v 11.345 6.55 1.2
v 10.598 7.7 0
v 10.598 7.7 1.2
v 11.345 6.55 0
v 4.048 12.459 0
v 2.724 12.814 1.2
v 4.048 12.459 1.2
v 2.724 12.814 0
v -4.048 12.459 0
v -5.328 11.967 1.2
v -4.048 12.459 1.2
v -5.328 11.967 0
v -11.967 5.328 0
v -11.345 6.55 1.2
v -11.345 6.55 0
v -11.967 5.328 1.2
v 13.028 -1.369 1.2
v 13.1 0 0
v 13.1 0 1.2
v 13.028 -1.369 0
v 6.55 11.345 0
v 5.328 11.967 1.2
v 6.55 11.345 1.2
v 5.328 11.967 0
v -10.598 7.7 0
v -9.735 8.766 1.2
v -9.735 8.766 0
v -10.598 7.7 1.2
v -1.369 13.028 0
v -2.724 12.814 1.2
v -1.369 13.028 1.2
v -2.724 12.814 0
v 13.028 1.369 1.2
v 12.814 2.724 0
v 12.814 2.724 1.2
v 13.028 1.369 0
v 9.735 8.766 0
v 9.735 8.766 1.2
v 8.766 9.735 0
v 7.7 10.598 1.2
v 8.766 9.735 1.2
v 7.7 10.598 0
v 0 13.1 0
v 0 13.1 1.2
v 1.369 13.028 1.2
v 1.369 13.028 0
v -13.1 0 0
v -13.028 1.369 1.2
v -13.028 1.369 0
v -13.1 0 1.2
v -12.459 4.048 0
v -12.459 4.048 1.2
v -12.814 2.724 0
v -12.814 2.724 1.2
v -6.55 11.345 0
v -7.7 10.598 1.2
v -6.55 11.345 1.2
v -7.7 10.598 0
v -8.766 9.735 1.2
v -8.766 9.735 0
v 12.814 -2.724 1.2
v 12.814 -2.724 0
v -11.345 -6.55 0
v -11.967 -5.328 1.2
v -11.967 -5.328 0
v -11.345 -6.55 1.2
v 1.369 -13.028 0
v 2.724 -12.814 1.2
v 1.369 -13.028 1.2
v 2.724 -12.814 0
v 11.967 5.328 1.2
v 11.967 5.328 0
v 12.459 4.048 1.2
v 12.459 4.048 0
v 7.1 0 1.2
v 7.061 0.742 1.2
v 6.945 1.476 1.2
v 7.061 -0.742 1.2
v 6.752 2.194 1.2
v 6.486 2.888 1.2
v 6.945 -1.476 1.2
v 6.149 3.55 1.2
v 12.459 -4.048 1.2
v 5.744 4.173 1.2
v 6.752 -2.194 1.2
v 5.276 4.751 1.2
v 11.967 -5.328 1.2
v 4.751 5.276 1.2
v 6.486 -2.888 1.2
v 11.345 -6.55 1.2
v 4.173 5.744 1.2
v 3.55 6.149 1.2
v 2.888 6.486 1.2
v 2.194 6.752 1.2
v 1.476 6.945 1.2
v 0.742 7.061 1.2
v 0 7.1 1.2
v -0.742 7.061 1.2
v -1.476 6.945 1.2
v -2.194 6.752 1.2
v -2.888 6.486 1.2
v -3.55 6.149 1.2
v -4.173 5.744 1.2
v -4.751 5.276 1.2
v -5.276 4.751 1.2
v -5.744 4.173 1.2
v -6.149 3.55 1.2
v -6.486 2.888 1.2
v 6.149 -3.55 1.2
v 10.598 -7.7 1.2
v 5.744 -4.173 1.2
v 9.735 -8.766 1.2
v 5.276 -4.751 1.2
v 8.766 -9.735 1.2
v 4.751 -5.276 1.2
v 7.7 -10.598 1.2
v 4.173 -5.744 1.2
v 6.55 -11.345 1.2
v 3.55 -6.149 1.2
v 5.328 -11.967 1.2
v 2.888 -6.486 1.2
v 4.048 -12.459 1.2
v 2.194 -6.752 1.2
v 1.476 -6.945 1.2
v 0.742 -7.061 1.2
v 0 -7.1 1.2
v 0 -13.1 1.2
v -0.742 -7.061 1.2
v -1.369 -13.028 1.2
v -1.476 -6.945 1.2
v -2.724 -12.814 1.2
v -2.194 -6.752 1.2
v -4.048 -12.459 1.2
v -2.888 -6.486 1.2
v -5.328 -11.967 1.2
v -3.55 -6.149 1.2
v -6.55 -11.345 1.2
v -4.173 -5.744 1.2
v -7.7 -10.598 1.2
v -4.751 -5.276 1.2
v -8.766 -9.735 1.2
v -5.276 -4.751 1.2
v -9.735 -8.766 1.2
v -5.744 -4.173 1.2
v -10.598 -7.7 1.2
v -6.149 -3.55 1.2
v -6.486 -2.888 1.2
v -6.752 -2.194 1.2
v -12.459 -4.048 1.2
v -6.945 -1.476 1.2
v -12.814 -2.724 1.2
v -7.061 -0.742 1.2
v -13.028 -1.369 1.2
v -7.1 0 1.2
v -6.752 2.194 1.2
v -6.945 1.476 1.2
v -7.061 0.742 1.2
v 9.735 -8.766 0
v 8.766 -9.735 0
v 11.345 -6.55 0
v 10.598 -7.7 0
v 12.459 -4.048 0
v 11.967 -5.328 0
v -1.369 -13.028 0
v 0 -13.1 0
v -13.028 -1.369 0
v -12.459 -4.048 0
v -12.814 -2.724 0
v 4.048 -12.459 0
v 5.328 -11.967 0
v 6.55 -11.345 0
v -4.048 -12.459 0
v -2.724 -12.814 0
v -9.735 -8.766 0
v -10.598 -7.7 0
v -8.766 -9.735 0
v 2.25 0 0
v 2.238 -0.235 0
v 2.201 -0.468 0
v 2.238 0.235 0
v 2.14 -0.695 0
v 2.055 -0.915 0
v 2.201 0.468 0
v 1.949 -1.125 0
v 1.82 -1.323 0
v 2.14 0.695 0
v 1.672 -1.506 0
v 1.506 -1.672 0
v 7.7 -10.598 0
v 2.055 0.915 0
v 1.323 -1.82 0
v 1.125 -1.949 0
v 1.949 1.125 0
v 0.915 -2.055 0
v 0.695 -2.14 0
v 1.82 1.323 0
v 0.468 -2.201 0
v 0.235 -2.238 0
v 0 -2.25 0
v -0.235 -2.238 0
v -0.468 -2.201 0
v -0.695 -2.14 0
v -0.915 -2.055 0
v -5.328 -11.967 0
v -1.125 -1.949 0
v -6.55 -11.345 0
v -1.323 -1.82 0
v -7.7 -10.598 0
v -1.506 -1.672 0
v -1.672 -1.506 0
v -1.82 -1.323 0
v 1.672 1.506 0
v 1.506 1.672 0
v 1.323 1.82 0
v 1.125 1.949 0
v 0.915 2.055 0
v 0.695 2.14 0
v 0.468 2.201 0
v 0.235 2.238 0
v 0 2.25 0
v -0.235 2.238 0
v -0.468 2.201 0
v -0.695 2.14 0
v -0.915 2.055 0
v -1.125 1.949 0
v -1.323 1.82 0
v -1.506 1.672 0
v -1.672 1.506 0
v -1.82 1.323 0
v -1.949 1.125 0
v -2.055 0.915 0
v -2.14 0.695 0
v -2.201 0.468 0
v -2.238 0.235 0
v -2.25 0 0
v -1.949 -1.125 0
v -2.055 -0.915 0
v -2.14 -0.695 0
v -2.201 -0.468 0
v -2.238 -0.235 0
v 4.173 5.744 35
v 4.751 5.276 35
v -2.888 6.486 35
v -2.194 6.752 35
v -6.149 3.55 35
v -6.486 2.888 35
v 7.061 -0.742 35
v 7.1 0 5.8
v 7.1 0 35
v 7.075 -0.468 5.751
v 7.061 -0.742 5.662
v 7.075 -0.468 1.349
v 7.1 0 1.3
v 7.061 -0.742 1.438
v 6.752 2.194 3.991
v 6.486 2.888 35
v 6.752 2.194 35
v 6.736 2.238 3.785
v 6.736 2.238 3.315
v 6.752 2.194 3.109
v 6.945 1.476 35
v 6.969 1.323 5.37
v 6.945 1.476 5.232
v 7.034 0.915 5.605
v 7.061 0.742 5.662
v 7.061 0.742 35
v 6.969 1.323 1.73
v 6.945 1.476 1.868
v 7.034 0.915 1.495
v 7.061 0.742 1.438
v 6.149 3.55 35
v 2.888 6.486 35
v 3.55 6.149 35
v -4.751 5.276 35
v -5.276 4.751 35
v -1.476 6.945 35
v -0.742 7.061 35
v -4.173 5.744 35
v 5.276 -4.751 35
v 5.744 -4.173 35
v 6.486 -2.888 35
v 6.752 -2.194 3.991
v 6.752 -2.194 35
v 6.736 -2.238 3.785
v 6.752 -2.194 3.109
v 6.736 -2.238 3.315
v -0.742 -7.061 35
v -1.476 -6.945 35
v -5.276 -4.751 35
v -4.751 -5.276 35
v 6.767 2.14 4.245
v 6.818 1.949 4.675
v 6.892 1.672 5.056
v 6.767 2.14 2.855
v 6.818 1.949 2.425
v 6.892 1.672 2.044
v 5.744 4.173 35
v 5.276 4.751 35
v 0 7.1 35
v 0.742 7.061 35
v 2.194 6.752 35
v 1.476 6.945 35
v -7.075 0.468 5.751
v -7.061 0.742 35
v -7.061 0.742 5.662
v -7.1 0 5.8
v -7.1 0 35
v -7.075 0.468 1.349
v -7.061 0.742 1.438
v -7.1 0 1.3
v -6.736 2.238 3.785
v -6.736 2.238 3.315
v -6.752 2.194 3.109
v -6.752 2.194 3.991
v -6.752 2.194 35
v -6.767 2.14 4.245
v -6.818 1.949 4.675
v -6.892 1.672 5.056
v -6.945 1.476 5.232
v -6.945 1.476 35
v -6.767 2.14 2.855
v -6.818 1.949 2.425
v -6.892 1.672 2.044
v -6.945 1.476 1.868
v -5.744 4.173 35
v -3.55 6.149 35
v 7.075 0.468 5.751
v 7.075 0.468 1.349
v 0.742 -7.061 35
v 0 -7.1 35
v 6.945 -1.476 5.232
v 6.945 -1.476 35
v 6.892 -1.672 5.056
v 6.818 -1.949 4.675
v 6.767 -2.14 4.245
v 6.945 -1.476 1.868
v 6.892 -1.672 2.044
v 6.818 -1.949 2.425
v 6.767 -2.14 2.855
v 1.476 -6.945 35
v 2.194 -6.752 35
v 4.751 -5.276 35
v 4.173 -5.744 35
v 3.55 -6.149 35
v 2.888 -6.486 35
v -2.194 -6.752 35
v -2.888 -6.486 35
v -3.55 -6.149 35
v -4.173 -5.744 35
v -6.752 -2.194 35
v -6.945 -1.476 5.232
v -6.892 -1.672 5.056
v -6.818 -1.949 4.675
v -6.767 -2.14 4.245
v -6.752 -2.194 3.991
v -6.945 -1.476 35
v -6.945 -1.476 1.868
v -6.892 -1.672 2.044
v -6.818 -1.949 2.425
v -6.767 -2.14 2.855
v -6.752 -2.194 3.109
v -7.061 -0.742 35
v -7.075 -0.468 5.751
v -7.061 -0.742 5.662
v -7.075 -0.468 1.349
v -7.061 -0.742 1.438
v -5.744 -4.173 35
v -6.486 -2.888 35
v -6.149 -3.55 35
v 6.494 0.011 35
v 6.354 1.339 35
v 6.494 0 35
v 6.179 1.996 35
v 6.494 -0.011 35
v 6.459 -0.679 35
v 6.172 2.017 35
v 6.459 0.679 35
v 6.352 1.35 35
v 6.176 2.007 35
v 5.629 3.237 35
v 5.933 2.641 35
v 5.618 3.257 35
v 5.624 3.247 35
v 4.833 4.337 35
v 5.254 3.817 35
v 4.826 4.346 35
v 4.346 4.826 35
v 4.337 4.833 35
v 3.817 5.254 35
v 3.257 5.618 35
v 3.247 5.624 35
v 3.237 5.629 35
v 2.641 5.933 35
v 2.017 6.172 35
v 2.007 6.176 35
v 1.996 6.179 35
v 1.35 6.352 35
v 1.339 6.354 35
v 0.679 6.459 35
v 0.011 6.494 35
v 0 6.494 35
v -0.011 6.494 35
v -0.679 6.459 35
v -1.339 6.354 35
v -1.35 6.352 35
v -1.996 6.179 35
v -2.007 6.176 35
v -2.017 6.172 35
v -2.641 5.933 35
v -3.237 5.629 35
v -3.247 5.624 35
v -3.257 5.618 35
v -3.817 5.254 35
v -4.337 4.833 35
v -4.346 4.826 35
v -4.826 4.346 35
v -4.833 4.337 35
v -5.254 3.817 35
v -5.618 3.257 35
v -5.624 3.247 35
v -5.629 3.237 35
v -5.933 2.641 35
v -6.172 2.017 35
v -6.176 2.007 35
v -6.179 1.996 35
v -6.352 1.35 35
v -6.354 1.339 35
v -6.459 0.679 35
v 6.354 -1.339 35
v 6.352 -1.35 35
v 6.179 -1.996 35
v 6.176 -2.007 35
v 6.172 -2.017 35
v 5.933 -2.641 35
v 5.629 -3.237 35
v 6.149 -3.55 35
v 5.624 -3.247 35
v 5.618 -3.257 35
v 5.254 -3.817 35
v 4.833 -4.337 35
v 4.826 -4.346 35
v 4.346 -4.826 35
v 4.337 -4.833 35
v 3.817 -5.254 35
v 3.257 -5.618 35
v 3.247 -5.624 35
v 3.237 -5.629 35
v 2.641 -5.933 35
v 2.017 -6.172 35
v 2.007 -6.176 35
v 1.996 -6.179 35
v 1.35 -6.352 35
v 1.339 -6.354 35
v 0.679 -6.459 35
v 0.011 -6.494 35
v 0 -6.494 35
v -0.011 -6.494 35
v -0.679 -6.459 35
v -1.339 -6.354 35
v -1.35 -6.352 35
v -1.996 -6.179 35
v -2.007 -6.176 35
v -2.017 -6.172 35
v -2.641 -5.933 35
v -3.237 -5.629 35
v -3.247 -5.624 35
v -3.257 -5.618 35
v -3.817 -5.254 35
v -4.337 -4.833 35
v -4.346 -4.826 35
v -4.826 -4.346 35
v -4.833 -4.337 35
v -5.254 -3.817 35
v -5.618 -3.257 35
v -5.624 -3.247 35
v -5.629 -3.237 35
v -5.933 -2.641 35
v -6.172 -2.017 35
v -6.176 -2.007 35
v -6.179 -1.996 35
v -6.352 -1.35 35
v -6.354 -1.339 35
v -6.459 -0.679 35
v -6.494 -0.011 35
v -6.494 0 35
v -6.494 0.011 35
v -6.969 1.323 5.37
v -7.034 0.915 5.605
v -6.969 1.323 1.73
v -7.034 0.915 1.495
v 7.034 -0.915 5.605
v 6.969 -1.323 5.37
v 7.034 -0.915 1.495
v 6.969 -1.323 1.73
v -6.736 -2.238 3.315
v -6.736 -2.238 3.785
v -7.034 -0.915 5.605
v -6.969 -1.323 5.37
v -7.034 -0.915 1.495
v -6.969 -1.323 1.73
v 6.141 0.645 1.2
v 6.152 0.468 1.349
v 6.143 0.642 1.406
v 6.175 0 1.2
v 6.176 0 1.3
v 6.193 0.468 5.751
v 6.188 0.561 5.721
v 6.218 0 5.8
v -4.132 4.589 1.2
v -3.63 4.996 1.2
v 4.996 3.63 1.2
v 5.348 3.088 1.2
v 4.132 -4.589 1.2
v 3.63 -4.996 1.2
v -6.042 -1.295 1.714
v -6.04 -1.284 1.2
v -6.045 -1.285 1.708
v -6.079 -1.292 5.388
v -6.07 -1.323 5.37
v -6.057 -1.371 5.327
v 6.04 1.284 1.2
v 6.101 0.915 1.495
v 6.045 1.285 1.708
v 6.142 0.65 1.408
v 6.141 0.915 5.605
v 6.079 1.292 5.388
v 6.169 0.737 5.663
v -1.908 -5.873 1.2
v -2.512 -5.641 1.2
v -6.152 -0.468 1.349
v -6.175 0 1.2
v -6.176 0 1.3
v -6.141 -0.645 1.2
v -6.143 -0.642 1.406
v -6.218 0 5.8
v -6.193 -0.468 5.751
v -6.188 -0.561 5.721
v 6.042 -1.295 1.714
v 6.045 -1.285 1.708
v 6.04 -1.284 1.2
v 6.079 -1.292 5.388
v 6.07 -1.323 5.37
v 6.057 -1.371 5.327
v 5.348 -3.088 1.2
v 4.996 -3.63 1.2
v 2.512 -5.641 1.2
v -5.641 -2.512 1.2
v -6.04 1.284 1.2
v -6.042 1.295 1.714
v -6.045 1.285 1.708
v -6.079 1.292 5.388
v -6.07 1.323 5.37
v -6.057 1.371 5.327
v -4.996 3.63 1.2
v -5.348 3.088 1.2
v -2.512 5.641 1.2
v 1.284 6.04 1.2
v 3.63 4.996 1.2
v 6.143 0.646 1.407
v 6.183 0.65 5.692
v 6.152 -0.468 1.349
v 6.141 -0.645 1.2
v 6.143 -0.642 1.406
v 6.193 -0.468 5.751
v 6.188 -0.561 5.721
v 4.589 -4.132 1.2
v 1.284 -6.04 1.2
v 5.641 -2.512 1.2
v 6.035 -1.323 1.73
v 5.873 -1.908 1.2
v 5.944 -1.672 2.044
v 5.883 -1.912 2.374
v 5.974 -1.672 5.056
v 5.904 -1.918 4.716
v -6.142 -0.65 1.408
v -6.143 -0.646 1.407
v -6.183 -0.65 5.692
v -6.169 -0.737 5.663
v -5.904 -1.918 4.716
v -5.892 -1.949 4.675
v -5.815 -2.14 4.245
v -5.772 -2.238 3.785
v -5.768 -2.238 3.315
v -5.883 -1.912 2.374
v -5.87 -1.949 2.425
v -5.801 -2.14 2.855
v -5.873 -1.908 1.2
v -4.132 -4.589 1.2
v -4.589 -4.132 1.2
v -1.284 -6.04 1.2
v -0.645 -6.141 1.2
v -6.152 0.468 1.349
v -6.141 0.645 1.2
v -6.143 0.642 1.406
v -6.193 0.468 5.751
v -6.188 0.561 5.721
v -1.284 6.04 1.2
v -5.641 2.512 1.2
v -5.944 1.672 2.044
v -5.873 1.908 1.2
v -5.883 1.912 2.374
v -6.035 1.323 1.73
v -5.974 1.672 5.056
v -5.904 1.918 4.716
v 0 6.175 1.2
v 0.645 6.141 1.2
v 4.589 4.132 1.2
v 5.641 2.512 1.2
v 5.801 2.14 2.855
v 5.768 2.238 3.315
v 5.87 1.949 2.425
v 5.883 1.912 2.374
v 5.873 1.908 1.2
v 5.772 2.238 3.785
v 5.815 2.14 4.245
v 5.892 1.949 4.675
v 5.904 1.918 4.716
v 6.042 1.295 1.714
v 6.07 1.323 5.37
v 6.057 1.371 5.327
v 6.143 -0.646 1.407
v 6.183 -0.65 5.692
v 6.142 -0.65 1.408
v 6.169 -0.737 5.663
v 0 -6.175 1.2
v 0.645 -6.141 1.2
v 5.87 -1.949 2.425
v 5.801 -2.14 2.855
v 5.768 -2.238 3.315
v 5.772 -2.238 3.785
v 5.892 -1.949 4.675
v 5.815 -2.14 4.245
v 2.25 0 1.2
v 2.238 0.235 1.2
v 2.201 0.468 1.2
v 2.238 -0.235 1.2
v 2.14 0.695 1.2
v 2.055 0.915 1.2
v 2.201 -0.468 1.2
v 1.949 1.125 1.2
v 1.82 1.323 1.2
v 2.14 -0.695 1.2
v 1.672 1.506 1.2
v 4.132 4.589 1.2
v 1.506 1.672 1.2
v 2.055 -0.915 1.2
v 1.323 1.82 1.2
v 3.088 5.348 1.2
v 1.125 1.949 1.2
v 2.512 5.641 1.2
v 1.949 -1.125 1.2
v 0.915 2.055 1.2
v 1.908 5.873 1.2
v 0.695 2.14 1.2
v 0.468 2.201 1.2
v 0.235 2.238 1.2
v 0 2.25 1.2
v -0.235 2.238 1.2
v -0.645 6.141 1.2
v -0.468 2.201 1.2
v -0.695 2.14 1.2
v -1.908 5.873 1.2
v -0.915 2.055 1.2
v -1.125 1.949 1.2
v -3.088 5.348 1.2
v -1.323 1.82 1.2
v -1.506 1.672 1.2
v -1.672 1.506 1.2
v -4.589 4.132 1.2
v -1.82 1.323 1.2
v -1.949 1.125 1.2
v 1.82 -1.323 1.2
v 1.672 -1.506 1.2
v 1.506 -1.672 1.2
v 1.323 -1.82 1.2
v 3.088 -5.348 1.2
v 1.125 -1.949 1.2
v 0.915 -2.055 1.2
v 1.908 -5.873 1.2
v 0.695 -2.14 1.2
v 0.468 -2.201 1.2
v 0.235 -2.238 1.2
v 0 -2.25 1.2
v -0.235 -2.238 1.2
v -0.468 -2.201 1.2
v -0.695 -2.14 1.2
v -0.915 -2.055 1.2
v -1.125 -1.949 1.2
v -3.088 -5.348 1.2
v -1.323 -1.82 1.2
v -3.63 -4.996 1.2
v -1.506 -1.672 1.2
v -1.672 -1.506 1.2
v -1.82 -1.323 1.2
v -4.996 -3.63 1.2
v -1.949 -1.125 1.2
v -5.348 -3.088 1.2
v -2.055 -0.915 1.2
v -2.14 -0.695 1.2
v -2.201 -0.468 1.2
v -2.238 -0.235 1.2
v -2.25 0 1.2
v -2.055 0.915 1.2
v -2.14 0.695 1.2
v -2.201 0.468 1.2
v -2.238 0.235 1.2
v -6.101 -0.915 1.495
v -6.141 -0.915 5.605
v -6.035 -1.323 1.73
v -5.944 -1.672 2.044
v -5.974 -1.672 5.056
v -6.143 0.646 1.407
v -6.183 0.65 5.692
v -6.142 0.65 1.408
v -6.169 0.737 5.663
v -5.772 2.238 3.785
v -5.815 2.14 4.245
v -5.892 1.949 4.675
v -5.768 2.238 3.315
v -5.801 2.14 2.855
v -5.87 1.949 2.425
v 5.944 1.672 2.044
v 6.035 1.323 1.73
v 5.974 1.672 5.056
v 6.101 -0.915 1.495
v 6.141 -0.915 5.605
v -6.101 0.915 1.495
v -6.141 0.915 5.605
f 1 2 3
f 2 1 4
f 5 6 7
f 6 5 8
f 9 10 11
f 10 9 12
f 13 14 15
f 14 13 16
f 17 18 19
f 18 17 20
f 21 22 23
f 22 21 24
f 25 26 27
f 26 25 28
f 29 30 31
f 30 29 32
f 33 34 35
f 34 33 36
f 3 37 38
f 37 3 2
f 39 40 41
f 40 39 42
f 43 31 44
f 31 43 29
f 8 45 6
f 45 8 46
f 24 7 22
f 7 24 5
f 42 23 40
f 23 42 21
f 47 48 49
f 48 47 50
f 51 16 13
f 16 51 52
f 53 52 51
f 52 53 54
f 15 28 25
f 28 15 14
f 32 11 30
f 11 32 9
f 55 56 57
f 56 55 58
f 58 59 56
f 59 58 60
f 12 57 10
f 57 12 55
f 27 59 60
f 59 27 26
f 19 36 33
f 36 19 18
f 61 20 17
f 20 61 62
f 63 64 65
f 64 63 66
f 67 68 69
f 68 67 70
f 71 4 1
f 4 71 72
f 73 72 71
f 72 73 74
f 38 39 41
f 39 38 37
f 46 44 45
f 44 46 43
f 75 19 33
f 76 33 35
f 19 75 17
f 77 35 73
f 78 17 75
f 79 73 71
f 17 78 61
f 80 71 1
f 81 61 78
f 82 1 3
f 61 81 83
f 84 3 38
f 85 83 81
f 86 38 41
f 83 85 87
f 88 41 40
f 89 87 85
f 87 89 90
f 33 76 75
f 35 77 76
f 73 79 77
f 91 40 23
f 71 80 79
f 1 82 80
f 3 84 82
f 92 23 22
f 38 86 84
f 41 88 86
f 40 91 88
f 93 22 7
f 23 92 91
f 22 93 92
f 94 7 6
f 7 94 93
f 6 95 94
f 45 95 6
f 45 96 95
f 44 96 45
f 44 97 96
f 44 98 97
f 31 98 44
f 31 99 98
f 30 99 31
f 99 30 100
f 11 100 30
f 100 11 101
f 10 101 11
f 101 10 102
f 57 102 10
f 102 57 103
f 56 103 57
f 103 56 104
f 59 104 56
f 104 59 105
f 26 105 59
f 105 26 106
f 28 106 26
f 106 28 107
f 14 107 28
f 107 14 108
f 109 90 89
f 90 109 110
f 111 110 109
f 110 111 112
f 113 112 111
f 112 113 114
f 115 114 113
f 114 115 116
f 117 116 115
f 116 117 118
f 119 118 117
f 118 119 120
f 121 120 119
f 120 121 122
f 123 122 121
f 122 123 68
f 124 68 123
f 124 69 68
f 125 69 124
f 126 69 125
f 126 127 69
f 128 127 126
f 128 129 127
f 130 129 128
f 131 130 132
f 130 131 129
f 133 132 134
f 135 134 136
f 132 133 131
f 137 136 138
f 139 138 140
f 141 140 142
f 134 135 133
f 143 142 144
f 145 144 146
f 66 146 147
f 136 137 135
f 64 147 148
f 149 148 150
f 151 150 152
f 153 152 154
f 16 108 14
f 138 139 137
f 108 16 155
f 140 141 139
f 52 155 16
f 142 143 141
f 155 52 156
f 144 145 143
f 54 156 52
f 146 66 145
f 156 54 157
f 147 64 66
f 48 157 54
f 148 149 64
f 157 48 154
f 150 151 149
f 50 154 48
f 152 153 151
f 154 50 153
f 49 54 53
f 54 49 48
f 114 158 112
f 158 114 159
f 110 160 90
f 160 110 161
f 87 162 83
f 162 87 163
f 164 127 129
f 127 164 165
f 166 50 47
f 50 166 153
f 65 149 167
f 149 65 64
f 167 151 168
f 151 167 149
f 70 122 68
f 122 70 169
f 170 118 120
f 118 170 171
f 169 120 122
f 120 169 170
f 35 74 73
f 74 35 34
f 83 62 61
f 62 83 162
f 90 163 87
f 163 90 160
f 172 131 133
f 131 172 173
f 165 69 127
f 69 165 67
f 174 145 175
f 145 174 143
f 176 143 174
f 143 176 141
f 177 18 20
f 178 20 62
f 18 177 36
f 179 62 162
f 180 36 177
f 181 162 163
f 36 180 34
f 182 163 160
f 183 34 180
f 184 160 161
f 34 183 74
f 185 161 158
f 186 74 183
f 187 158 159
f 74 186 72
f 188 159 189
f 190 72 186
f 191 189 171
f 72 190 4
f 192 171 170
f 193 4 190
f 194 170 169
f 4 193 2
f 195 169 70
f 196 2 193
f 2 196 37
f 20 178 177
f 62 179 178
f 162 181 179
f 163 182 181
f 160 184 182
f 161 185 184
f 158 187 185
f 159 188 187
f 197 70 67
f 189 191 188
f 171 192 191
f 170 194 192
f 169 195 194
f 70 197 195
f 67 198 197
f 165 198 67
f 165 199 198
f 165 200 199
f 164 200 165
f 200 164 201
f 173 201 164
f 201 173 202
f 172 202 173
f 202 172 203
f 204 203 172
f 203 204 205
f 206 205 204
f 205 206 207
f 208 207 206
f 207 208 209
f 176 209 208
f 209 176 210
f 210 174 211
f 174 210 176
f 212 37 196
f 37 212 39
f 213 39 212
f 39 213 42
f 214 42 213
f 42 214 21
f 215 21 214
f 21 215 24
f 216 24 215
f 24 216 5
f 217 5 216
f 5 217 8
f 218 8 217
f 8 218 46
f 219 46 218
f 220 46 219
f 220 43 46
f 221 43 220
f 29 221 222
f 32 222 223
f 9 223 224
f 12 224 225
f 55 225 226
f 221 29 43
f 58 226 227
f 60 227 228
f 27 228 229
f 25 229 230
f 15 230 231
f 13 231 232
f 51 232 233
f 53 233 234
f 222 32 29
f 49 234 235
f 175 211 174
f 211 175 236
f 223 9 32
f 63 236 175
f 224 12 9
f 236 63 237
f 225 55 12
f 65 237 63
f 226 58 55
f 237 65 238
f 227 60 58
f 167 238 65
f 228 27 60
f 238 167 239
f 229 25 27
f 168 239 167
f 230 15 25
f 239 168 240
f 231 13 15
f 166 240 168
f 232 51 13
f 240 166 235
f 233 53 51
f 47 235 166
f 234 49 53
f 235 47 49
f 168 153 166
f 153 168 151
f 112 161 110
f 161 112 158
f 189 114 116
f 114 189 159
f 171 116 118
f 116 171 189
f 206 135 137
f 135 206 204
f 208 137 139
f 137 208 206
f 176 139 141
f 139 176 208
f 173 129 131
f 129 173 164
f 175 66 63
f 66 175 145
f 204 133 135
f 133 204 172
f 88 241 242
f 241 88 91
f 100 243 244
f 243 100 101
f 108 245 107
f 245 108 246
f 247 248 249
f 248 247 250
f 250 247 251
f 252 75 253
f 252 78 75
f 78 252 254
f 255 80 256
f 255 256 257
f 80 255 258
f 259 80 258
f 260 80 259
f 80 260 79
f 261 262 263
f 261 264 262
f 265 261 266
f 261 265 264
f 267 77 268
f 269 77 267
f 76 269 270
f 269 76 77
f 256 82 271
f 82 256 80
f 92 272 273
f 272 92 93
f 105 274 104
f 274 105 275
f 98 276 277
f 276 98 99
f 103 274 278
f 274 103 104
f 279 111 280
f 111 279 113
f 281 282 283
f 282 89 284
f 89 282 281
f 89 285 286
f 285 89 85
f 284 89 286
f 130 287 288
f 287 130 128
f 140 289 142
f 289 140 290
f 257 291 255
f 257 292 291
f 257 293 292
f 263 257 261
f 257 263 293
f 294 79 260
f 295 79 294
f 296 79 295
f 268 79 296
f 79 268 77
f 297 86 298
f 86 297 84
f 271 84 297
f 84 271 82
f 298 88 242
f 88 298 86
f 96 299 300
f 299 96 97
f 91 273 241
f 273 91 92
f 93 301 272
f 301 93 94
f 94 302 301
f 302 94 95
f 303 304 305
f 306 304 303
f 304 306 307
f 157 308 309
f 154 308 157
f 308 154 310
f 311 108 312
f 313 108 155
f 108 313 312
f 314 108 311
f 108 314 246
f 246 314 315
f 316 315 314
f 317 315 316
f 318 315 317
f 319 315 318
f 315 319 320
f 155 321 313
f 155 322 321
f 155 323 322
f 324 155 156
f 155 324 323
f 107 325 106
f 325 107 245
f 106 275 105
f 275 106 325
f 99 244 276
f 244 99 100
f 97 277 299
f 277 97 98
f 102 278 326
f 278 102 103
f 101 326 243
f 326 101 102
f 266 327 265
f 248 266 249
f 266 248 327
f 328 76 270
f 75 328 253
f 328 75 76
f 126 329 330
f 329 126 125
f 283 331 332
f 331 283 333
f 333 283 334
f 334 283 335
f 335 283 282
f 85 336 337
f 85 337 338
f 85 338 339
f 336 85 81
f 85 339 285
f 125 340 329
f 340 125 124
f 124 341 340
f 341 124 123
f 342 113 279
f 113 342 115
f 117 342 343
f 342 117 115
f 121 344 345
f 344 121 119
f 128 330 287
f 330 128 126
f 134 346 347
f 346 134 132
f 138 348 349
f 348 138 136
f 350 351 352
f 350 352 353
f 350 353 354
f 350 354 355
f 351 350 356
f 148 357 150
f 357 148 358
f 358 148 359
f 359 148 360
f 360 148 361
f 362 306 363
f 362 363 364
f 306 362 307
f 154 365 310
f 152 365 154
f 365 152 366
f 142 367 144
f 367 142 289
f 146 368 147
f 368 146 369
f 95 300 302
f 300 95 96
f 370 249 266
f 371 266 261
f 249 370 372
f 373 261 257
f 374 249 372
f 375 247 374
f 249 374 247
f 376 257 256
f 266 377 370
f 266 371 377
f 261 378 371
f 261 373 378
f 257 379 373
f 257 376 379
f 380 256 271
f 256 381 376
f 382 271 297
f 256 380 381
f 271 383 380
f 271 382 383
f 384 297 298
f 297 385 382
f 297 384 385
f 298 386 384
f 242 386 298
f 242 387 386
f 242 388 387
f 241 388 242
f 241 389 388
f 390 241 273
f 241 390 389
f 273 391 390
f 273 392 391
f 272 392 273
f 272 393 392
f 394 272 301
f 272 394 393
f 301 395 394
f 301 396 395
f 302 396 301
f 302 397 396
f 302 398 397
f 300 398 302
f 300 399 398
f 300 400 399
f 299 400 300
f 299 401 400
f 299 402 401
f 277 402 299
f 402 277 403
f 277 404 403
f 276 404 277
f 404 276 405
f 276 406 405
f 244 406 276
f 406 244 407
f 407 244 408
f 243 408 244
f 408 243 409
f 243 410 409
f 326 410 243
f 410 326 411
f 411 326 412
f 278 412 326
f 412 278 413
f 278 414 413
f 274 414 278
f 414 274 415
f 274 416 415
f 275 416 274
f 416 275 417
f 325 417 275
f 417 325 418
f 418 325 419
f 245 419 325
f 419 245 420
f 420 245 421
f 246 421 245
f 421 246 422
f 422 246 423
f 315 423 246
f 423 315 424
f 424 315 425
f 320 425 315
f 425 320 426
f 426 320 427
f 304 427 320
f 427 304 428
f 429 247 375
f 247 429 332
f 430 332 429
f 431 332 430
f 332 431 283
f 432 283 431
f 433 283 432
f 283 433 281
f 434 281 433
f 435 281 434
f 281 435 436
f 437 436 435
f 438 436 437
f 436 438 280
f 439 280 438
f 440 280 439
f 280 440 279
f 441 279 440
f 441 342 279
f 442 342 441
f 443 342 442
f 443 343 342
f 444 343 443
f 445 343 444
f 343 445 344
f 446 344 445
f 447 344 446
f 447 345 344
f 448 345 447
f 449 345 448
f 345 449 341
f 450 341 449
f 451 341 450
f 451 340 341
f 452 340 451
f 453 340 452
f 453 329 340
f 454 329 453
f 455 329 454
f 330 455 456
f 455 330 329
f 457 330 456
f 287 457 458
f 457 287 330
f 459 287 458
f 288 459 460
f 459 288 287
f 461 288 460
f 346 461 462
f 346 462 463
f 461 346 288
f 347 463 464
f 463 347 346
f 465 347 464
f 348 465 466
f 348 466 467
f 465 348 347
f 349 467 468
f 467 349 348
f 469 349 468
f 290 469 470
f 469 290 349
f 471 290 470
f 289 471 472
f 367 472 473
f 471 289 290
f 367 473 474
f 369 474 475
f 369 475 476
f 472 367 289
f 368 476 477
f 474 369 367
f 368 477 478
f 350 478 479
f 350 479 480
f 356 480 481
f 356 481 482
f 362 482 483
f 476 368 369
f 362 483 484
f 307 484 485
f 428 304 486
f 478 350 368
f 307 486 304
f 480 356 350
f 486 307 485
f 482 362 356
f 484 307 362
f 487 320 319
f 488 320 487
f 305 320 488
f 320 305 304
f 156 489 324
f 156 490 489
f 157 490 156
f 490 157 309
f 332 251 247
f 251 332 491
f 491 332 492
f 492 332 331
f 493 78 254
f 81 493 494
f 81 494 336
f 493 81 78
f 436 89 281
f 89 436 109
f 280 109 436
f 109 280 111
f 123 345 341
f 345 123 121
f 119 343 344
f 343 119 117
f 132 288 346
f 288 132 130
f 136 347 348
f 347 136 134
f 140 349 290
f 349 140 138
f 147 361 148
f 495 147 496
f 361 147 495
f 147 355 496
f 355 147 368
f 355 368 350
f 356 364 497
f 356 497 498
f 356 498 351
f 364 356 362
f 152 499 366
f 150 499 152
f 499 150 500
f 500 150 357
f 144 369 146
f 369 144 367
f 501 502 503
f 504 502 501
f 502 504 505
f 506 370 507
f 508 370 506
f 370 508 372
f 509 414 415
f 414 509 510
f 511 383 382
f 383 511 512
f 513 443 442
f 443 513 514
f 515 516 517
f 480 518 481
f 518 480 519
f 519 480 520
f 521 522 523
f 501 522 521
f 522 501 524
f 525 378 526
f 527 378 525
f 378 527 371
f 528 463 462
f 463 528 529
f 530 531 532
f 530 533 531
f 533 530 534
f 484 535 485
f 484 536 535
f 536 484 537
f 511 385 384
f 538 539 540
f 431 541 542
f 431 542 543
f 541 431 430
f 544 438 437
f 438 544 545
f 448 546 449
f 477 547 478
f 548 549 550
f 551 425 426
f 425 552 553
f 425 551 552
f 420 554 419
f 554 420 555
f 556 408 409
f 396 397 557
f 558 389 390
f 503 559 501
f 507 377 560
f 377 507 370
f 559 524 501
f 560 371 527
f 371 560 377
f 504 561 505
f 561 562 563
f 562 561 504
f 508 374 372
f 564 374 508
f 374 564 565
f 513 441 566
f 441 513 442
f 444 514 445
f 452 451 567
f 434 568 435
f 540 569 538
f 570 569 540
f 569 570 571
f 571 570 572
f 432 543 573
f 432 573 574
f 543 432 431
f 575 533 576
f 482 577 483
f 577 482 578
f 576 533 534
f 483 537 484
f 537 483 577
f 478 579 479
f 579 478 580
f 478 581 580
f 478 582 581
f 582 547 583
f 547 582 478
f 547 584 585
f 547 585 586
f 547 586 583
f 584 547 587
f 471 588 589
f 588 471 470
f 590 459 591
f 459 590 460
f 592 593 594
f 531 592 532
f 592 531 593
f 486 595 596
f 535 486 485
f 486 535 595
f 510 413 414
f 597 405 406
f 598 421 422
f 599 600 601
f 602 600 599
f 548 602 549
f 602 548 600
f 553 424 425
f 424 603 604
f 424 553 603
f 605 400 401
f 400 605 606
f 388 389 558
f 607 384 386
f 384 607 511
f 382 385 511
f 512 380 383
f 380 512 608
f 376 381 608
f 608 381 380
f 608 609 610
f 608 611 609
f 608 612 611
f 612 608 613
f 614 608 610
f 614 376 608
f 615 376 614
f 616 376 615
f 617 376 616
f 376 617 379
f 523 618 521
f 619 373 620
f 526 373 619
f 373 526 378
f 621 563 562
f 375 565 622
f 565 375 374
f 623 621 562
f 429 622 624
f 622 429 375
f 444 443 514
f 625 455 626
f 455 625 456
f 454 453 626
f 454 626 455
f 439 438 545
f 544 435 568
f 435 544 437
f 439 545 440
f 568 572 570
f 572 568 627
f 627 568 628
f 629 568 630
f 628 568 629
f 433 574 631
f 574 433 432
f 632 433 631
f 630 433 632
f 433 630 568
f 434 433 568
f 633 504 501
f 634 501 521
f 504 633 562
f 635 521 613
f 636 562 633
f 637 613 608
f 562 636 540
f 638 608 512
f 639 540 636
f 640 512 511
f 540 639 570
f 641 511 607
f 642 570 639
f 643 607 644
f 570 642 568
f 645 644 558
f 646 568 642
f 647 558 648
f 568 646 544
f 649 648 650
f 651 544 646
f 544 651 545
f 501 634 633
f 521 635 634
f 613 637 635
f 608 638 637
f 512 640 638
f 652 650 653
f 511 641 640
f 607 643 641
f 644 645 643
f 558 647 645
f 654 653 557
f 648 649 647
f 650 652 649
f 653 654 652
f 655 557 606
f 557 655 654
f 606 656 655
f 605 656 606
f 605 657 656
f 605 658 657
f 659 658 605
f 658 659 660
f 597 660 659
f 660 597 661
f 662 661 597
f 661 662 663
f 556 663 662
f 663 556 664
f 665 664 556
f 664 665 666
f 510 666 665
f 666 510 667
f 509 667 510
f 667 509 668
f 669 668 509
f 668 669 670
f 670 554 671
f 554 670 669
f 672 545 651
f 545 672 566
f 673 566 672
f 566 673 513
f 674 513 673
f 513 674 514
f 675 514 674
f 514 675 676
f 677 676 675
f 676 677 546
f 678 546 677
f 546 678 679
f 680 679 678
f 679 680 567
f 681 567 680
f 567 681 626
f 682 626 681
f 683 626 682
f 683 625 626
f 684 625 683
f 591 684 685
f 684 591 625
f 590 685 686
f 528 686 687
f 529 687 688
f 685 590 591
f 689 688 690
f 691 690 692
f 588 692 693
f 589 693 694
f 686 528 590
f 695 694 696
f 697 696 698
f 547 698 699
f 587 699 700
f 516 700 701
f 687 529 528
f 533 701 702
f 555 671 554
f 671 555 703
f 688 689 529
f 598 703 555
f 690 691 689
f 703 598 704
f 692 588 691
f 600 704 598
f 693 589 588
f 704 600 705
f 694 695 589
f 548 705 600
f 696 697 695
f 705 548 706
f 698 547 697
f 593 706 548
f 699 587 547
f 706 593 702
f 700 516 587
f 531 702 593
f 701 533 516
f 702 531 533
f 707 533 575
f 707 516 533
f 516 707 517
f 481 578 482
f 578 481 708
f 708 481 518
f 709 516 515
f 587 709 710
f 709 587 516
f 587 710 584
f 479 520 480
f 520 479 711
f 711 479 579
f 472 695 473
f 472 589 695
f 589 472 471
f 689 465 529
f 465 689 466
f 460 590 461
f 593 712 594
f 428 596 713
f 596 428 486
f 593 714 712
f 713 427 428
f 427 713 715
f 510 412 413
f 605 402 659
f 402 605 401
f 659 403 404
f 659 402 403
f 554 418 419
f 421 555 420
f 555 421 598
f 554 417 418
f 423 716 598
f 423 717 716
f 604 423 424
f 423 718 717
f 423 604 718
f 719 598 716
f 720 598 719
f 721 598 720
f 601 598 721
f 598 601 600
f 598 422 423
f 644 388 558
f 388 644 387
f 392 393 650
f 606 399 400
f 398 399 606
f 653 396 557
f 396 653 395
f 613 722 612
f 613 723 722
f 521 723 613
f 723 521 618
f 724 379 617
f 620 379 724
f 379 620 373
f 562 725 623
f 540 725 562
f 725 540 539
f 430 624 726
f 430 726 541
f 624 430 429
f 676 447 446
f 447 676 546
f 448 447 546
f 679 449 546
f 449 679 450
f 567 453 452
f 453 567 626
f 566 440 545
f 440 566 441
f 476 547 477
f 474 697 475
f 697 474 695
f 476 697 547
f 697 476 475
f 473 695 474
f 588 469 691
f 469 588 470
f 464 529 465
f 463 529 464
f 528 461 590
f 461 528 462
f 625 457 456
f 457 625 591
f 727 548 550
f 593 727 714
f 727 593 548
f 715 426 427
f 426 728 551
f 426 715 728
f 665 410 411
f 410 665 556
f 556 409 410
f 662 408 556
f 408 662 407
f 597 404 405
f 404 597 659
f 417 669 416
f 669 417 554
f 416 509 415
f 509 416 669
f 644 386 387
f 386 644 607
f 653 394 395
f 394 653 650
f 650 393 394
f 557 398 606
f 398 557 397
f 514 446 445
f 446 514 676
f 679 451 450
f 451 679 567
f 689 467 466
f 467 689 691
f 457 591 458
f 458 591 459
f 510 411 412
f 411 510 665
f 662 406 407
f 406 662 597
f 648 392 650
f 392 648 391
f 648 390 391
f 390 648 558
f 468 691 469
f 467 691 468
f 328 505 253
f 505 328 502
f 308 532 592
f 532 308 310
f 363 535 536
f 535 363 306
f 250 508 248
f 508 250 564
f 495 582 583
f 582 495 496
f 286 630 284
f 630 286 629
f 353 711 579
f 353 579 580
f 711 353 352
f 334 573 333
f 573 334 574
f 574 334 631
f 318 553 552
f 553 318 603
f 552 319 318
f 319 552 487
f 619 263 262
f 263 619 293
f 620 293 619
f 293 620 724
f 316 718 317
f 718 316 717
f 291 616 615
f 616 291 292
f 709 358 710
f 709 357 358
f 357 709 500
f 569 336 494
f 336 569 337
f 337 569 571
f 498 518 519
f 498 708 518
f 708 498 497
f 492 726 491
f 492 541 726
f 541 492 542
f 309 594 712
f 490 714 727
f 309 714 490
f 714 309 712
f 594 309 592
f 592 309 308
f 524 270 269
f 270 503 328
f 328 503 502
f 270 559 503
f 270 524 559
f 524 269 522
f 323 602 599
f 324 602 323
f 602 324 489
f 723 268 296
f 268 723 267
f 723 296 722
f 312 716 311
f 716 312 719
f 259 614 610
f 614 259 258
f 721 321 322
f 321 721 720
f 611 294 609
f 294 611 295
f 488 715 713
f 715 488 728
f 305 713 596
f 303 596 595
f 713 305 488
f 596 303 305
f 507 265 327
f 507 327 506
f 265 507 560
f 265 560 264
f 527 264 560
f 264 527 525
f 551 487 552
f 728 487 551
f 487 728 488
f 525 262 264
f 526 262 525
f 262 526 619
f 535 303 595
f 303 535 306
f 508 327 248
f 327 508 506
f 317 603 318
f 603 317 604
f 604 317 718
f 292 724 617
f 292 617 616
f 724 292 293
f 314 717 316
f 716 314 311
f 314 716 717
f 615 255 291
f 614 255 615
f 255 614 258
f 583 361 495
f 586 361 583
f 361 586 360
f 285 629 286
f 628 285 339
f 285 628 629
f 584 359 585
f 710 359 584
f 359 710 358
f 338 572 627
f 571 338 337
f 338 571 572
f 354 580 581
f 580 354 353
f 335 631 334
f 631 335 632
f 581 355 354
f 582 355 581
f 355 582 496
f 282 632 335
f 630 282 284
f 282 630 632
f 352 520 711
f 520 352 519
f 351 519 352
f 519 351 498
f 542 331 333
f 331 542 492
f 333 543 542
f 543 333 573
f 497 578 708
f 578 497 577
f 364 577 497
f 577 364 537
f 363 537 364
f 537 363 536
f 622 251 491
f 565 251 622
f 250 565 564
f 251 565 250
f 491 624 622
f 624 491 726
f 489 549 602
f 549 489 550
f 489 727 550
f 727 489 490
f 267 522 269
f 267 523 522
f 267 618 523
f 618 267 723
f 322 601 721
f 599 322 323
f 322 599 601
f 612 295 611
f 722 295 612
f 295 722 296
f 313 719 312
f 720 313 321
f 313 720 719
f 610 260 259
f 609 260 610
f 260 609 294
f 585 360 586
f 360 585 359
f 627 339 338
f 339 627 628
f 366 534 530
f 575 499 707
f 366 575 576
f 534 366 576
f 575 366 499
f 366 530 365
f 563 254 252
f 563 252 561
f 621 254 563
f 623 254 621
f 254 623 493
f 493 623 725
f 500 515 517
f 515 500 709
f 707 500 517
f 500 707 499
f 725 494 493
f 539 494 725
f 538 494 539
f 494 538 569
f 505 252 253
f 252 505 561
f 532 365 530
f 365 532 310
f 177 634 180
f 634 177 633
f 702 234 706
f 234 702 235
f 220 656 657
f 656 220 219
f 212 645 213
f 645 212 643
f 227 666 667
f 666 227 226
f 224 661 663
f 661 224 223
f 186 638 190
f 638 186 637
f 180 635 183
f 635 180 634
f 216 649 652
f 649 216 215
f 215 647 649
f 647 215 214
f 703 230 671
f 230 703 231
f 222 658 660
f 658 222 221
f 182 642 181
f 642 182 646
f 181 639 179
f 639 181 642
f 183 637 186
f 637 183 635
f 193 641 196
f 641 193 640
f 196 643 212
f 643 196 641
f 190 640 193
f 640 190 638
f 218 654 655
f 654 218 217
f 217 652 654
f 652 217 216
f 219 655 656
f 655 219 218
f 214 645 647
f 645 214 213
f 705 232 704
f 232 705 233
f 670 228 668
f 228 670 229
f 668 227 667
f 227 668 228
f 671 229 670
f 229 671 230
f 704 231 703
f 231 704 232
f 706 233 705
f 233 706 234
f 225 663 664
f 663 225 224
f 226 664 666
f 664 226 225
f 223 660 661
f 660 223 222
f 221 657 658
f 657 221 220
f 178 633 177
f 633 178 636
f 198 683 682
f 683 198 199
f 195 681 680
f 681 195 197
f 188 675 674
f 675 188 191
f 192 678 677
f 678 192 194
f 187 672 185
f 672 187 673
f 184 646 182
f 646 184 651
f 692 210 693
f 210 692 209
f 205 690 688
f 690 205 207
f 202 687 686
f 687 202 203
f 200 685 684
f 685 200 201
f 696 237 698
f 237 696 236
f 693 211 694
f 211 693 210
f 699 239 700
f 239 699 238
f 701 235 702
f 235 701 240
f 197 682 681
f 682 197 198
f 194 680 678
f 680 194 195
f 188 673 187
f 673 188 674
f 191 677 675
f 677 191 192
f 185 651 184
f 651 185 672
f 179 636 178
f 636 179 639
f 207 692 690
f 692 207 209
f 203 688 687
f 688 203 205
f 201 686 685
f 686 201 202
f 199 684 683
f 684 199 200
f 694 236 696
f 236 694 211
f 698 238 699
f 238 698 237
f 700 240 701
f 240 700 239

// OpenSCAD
// Chalk diameter. (All measurements in millimeters.)
diameter = 13.0;
// Total height.
height = 35;
// Thickness of cone walls.
wall = 0.6;
hole_diameter = 4.5;
// Taper the inner cylinder to grip the chalk
taper = 0.05;

eraser_diameter = 25;
eraser_height = wall*2;

module chalk(){
  r = diameter/2;
  union(){
    
    difference() {
      union(){
        cylinder(h=eraser_height, r=eraser_diameter/2+wall, center=false, $fn=60);
        cylinder(h=height, r=r+wall, center=false, $fn=60);
      }
      // inside cylinder
      translate([0,0,wall*2])
        cylinder (h=height-wall, r1=r-r*taper, r2=r, center=false, $fn=60);
      rotate([0,90,0])
        translate([-(hole_diameter/2+eraser_height+.1),0,0])
          cylinder(h=diameter+wall*2, r=hole_diameter/2, center=true, $fn=30);
      translate([0,0,-.2])
        cylinder (h=eraser_height+.4, r=hole_diameter/2, center=false, $fn=60);
    }
  }
}

chalk();
//d = eraser_diameter/2 + 3;
//for(x=[-d,d]) translate([x,y,0]) chalk();

    
